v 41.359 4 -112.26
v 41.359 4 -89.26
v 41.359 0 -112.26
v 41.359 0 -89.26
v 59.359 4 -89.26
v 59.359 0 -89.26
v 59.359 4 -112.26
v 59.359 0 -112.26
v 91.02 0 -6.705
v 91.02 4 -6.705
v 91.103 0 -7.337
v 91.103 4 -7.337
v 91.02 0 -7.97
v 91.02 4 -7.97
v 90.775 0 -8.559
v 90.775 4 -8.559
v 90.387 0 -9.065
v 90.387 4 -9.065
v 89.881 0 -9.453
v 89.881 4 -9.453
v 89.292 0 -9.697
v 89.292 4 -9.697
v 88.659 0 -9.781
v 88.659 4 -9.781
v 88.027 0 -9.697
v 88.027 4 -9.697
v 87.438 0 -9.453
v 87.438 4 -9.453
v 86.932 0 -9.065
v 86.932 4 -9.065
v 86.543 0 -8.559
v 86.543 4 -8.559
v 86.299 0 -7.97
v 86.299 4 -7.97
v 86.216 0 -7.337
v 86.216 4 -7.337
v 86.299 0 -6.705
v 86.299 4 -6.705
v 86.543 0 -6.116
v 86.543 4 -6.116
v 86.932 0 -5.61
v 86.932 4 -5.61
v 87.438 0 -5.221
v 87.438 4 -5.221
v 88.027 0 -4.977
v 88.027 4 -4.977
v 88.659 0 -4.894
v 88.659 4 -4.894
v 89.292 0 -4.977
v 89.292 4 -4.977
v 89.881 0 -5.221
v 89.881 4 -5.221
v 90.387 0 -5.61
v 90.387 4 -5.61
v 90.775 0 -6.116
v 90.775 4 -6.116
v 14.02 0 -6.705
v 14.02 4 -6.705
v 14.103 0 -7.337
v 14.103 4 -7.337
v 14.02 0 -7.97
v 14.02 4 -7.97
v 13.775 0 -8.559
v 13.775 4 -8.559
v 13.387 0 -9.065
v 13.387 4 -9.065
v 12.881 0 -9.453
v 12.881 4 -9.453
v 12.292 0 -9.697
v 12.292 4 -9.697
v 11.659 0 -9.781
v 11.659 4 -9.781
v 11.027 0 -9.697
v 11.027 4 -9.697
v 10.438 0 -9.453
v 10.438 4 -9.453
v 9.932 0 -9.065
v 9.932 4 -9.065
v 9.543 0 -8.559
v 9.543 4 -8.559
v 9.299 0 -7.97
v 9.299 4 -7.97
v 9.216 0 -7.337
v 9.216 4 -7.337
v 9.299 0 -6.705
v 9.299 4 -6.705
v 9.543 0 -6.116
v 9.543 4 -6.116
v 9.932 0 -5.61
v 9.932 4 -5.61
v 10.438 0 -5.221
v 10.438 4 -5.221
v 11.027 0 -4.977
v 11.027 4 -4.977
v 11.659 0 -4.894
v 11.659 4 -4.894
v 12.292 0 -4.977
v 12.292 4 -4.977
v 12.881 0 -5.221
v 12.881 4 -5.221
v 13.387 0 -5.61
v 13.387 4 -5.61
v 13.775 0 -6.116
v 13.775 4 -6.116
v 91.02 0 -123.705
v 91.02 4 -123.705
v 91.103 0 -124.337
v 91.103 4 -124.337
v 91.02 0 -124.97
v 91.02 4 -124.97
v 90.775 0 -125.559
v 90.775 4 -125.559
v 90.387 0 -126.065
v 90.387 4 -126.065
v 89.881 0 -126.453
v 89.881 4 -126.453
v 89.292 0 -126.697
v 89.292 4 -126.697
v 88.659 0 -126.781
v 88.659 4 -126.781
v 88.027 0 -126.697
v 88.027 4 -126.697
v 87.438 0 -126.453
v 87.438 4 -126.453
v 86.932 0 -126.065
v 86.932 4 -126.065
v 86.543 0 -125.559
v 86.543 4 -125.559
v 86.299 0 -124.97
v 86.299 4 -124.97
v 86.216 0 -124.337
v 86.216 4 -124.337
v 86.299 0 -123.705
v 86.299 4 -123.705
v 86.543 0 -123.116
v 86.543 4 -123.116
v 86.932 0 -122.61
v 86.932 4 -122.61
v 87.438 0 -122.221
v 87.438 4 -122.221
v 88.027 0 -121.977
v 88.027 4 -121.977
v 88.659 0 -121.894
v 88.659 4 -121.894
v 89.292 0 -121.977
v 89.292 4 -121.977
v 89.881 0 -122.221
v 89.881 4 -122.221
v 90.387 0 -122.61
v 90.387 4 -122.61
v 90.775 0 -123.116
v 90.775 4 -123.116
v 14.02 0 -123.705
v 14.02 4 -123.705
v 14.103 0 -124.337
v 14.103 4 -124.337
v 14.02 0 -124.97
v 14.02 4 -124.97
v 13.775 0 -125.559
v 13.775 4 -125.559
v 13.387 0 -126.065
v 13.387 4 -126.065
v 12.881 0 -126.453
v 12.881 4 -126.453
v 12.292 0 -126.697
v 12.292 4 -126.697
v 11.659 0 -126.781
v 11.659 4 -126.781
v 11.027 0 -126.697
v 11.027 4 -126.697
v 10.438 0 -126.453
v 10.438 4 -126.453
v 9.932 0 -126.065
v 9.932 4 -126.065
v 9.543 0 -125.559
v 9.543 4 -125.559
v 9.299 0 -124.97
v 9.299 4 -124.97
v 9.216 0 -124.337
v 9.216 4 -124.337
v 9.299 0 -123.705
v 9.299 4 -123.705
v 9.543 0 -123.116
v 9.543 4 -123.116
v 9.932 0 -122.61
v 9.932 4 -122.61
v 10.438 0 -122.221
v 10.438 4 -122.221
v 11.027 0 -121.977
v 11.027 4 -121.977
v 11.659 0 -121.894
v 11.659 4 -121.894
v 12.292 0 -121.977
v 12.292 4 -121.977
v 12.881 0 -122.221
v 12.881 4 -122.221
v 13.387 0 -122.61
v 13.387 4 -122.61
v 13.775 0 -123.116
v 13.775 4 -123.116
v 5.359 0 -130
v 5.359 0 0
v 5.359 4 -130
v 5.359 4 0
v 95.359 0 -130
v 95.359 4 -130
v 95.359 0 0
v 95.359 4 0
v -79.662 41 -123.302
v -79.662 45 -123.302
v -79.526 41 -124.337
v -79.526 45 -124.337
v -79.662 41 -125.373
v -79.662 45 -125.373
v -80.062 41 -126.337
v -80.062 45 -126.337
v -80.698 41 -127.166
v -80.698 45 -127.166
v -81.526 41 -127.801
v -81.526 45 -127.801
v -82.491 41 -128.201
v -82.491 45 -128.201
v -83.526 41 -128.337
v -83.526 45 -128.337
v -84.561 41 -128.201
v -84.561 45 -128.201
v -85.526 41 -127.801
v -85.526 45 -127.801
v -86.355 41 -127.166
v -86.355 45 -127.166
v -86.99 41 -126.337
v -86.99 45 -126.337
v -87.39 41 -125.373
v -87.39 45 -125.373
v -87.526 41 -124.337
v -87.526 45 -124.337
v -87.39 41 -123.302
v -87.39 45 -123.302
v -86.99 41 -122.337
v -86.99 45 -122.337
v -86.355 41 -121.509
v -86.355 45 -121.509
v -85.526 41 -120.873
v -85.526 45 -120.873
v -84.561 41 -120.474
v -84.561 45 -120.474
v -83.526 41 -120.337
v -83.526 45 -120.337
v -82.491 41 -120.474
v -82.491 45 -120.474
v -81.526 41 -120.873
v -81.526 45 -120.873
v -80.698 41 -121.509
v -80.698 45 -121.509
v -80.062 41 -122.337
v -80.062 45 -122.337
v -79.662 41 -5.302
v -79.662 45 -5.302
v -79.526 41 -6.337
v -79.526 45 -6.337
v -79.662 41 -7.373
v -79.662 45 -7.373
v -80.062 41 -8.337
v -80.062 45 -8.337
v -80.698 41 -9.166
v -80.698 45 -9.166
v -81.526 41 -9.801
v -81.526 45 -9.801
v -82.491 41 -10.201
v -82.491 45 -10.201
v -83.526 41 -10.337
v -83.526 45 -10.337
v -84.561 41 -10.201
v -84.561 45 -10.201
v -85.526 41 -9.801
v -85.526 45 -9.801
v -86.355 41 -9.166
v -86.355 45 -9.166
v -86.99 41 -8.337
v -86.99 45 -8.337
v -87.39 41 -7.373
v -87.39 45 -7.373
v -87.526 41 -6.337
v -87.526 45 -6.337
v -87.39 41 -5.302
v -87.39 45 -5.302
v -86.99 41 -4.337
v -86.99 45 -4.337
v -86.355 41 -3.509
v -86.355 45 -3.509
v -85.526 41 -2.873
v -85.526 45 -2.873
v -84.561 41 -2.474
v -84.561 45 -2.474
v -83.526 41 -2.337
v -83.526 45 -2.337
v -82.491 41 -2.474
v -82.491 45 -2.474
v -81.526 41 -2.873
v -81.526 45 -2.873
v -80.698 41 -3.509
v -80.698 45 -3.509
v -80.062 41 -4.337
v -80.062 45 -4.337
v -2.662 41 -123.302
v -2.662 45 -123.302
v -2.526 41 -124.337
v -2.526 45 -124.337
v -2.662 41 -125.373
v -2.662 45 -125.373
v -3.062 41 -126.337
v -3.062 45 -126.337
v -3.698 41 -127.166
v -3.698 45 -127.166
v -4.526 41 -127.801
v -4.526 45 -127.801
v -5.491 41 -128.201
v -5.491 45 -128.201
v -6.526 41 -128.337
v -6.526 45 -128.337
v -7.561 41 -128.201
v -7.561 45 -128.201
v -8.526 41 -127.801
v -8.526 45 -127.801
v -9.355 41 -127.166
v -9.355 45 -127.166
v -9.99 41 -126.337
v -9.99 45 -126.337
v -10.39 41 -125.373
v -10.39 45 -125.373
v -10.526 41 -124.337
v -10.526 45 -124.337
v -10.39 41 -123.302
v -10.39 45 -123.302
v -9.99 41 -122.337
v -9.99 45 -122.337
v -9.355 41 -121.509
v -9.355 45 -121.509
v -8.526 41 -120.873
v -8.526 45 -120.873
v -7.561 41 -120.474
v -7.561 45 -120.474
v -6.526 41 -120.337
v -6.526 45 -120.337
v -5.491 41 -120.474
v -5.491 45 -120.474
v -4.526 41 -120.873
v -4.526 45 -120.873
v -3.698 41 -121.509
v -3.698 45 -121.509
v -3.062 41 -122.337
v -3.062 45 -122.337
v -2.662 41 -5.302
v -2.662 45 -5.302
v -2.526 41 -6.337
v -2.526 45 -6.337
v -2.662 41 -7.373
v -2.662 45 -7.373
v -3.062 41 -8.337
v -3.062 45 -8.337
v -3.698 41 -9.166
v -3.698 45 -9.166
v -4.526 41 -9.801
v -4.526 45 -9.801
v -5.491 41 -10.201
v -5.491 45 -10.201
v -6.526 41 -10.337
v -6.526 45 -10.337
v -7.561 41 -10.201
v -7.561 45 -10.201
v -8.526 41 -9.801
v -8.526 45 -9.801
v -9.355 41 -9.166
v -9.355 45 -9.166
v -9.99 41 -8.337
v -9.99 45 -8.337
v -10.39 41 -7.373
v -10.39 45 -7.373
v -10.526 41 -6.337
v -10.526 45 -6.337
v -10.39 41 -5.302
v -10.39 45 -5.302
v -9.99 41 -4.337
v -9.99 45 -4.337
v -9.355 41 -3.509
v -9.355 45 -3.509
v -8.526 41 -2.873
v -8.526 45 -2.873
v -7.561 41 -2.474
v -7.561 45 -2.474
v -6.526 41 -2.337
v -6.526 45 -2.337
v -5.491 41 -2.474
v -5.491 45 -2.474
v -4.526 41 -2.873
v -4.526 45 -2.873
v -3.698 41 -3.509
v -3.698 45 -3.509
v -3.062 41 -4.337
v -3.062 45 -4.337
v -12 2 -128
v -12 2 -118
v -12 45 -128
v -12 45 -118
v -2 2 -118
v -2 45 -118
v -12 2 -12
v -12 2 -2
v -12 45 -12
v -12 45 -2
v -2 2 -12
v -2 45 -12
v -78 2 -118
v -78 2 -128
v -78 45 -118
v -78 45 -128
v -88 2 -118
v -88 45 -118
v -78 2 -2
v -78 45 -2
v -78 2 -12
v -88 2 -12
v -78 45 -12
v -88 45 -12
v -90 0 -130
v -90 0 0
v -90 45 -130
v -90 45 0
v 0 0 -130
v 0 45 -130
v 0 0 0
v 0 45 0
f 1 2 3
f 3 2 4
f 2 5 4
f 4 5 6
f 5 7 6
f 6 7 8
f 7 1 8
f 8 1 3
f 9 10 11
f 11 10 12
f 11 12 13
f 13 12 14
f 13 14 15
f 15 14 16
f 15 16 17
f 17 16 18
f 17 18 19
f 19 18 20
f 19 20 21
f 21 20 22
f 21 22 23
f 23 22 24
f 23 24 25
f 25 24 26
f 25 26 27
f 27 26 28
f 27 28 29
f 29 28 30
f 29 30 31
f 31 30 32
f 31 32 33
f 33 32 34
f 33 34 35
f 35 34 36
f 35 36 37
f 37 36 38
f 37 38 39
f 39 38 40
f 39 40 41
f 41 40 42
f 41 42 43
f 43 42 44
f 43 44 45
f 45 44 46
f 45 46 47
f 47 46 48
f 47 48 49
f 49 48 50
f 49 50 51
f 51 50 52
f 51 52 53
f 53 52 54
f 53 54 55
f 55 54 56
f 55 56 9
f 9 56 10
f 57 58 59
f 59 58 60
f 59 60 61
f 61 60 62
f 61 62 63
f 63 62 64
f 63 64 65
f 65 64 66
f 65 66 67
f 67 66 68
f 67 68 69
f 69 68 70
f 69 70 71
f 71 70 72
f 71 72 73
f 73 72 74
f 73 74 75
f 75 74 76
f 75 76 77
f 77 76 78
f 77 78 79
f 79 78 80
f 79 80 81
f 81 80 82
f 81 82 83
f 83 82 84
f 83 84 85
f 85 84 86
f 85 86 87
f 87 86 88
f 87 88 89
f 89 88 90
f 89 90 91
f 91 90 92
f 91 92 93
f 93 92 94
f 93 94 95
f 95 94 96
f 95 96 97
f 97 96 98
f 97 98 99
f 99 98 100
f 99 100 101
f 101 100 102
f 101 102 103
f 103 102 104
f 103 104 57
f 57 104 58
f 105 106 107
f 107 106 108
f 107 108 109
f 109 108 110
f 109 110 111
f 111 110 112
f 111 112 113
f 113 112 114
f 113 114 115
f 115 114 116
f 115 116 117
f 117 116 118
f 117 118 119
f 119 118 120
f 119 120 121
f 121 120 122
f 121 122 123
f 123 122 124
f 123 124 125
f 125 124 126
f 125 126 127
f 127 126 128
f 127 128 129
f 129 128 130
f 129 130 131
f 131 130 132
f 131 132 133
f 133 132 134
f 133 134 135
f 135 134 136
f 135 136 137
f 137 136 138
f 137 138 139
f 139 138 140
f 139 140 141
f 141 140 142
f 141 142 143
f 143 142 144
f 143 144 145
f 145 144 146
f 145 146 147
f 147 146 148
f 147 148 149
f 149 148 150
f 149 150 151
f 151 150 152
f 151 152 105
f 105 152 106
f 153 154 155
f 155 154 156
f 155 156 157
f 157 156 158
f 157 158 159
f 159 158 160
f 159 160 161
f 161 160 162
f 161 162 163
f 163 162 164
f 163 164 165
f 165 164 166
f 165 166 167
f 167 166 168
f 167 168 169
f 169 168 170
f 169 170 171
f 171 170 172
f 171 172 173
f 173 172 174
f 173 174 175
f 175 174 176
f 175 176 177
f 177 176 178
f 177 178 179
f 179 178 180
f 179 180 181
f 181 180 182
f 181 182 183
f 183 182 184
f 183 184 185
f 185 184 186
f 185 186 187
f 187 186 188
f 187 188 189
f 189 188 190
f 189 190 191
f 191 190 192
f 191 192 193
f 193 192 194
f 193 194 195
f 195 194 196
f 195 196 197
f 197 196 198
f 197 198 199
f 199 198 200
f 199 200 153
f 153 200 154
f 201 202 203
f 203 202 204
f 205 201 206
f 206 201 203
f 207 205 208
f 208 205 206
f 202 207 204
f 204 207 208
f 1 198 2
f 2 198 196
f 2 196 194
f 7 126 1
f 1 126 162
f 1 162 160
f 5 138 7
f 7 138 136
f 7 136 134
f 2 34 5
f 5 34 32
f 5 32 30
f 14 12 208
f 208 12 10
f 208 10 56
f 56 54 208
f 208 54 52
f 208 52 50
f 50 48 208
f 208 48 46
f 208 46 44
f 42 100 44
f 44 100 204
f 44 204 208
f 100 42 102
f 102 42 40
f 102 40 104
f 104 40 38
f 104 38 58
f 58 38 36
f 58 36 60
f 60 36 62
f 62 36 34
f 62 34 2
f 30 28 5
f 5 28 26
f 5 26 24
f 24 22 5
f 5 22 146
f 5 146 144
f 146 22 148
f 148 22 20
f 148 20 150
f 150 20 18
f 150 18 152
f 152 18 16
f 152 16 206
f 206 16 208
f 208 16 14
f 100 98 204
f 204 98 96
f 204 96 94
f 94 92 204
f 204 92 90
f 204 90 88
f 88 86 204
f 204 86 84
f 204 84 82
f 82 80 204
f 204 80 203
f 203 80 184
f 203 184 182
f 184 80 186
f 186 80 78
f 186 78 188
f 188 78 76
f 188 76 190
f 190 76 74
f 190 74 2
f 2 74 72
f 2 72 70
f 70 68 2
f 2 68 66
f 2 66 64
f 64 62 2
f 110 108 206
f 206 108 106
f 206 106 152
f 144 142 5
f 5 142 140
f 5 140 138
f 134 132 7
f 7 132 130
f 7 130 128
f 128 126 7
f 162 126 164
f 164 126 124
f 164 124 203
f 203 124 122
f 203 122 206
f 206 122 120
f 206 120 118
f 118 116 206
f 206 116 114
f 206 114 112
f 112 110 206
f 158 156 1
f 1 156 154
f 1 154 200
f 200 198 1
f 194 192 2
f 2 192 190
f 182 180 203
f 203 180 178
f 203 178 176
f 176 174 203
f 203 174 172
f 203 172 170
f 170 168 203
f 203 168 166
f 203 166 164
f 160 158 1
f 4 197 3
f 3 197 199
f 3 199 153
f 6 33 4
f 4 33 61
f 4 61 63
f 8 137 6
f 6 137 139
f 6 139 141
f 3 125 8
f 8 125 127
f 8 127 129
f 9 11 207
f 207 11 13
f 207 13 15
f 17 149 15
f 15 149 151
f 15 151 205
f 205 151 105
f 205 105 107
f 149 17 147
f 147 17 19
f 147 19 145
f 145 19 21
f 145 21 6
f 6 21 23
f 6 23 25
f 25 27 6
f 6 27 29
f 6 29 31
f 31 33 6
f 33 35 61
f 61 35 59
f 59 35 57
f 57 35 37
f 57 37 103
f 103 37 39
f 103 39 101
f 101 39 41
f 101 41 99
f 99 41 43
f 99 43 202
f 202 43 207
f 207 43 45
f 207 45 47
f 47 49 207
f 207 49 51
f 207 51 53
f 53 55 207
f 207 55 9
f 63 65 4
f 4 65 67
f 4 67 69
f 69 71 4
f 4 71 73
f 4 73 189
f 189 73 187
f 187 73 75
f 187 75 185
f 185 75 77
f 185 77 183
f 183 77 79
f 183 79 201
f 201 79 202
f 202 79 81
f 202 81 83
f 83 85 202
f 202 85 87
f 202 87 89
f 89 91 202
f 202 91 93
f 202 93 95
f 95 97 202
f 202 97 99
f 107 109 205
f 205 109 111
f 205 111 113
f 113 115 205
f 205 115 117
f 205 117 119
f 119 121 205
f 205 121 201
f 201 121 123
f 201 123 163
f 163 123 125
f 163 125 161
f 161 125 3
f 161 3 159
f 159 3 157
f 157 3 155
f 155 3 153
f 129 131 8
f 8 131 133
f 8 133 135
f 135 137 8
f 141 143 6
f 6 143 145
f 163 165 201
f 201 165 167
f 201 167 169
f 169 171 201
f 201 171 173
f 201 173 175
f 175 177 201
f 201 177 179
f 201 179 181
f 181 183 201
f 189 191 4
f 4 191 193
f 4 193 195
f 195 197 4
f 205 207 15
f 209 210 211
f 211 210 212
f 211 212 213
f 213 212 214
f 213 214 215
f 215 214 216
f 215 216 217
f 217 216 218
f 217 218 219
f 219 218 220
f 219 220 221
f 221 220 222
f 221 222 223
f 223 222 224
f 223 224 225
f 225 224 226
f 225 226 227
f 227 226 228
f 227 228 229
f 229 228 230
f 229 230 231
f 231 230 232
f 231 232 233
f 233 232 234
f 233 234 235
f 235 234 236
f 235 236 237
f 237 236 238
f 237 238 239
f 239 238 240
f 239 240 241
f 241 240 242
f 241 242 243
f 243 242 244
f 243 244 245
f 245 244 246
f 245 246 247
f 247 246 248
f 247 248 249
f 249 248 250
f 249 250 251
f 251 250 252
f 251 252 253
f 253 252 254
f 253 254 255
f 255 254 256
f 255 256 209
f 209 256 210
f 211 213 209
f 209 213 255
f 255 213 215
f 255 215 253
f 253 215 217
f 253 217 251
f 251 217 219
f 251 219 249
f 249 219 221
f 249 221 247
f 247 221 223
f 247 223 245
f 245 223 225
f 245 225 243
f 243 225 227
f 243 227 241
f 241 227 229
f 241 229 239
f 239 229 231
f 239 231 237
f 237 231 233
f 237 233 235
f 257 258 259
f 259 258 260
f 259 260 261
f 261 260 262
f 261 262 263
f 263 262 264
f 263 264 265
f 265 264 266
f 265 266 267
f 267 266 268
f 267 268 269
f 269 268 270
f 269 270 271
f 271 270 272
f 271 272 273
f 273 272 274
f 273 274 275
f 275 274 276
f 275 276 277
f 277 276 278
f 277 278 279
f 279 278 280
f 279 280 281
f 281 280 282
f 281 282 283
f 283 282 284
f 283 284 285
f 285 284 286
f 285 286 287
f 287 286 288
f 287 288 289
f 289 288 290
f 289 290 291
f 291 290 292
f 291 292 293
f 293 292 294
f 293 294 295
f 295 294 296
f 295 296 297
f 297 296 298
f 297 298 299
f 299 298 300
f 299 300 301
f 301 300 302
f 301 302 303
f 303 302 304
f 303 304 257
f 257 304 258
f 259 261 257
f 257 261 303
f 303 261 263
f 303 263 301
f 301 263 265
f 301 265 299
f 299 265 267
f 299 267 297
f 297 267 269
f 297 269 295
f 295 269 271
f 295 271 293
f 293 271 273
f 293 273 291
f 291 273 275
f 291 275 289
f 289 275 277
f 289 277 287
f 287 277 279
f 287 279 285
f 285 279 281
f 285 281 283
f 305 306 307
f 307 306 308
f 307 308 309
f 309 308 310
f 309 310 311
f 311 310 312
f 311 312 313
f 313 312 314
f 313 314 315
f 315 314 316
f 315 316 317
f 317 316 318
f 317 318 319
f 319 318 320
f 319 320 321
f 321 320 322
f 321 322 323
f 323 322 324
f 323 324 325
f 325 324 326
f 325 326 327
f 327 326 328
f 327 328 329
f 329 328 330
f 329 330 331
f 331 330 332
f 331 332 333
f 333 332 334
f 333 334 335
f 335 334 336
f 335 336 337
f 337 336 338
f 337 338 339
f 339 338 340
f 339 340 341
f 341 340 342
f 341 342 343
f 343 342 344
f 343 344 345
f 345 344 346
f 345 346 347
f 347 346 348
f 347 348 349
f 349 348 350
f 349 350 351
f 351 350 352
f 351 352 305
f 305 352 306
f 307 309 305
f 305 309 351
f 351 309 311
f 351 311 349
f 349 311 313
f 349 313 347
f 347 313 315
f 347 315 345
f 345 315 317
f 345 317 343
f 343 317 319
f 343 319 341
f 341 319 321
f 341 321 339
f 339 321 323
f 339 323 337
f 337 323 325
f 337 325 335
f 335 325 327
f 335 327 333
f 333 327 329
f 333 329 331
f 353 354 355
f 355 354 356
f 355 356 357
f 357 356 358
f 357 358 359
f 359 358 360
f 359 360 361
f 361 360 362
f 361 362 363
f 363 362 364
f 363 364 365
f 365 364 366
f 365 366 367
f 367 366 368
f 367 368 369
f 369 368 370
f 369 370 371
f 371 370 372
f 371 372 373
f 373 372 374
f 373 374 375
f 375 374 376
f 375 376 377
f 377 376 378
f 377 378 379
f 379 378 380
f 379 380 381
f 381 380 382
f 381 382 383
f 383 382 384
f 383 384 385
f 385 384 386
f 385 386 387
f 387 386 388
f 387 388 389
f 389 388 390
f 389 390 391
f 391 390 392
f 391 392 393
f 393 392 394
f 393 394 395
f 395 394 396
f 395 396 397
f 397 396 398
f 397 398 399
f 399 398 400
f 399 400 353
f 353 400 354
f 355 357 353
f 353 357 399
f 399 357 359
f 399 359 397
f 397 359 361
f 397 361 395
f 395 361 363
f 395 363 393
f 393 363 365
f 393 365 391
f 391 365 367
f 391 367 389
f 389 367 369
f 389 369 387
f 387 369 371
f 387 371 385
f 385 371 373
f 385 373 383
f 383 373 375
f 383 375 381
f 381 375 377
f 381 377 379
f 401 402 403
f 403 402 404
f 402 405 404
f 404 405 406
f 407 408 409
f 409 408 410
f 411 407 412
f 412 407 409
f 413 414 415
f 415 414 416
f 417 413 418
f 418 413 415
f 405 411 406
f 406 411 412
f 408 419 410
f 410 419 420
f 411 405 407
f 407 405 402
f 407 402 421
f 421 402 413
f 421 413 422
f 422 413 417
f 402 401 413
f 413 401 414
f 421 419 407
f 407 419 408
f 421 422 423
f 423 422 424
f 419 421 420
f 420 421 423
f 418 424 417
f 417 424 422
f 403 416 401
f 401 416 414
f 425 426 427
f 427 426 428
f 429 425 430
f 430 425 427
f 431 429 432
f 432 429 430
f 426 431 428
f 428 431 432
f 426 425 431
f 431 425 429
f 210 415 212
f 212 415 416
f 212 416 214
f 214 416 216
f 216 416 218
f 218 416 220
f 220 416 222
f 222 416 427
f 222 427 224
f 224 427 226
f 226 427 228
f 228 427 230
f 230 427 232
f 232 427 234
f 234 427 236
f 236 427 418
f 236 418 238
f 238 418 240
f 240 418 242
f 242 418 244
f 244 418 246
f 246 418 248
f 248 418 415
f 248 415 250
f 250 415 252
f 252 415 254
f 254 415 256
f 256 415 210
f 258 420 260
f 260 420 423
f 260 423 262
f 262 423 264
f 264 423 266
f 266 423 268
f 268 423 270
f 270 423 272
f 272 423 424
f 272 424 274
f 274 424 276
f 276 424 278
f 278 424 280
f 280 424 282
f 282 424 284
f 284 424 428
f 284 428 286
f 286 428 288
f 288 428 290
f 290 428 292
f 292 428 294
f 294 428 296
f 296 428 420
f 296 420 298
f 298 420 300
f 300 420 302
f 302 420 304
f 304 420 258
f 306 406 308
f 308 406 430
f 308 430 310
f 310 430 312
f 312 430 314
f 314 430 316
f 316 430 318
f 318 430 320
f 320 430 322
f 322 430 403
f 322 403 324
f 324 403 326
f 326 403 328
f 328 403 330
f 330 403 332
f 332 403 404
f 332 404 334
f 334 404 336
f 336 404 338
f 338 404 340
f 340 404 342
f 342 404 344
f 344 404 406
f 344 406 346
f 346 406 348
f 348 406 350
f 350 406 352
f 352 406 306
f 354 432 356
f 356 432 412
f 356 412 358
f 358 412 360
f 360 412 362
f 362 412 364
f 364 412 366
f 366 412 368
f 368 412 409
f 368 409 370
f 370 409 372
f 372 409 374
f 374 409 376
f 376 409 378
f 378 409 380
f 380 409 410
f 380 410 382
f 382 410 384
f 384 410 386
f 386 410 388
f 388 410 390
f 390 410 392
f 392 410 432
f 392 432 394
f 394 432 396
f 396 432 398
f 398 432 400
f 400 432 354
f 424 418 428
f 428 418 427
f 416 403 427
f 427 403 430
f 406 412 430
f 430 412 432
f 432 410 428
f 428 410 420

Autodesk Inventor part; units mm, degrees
ref_plane "YZ Plane" through (0, 0, 0) normal (1, 0, 0) x (0, 1, 0)
ref_plane "XZ Plane" through (0, 0, 0) normal (0, 1, 0) x (-1, 0, 0)
ref_plane "XY Plane" through (0, 0, 0) normal (0, 0, 1) x (1, 0, 0)
sketch "Sketch1" plane through (0, 0, 0) normal (0, 1, 0) x (-1, 0, 0)
  line L0 (0, 0) -> (90, 0)
  line L1 (90, 0) -> (90, -130)
  line L2 (90, -130) -> (0, -130)
  line L3 (0, -130) -> (0, 0)
  dimension "d0" = 90
  dimension "d1" = 130
extrude "Extrusion1" add sketch "Sketch1" along normal blind 45
shell "Shell1" thickness 2 removed faces 1 at (-30, 45, -43.3333)
sketch "Sketch2" plane through (-88, 2, -2) normal (0, 1, 0) x (1, 0, 0)
  line L0 (0, 0) -> (0, 126) projected
  line L1 (0, 0) -> (10, 0)
  line L2 (10, 0) -> (10, 10)
  line L3 (10, 10) -> (0, 10)
  line L4 (0, 10) -> (0, 0)
  point P0 (88, -2)
  dimension "d5" = 10
  dimension "d6" = 10
extrude "Extrusion2" add sketch "Sketch2" along normal blind 43
pattern_linear "Rectangular Pattern1" count 2 spacing 116 along (0, 0, -1) count 2 spacing 76 along (1, 0, 0) of "Extrusion2"
sketch "Sketch3" plane through (0, 45, 0) normal (0, 1, 0) x (1, 0, 0)
  circle A0 centre (-6.5262, 6.3373) radius 4
  point P0 (0, 0)
  dimension "d15" = 8
extrude "Extrusion3" cut sketch "Sketch3" against normal blind 4
pattern_linear "Rectangular Pattern2" count 2 spacing 118 along (0, 0, -1) count 2 spacing 77 along (-1, 0, 0) of "Extrusion3"
sketch "Sketch7" plane through (0, 0, 0) normal (0, -1, 0) x (1, 0, 0)
  line L0 (5.3591, 0) -> (95.3591, 0)
  line L1 (95.3591, 0) -> (95.3591, -130)
  line L2 (95.3591, -130) -> (5.3591, -130)
  line L3 (5.3591, -130) -> (5.3591, 0)
  point P0 (0, 0)
  dimension "d41" = 90
  dimension "d42" = 130
extrude "Extrusion7" add sketch "Sketch7" against normal blind 4
sketch "Sketch8" plane through (0, 4, 0) normal (0, 1, 0) x (1, 0, 0)
  circle A0 centre (11.6594, 124.3373) radius 2.4434
  point P0 (0, 0)
extrude "Extrusion8" cut sketch "Sketch8" against normal blind 4
pattern_linear "Rectangular Pattern4" count 2 spacing 77 along (1, 0, 0) count 2 spacing 117 along (0, 0, 1) of "Extrusion8"
sketch "Sketch9" plane through (0, 4, 0) normal (0, 1, 0) x (1, 0, 0)
  line L0 (50.3591, 112.2598) -> (59.3591, 112.2598)
  line L1 (59.3591, 112.2598) -> (59.3591, 89.2598)
  line L2 (59.3591, 89.2598) -> (41.3591, 89.2598)
  line L3 (41.3591, 89.2598) -> (41.3591, 112.2598)
  line L4 (41.3591, 112.2598) -> (50.3591, 112.2598)
  point P0 (0, 0)
  dimension "d53" = 9
  dimension "d54" = 23
  dimension "d55" = 18
extrude "Extrusion9" cut sketch "Sketch9" against normal blind 4
properties part number "Box"
